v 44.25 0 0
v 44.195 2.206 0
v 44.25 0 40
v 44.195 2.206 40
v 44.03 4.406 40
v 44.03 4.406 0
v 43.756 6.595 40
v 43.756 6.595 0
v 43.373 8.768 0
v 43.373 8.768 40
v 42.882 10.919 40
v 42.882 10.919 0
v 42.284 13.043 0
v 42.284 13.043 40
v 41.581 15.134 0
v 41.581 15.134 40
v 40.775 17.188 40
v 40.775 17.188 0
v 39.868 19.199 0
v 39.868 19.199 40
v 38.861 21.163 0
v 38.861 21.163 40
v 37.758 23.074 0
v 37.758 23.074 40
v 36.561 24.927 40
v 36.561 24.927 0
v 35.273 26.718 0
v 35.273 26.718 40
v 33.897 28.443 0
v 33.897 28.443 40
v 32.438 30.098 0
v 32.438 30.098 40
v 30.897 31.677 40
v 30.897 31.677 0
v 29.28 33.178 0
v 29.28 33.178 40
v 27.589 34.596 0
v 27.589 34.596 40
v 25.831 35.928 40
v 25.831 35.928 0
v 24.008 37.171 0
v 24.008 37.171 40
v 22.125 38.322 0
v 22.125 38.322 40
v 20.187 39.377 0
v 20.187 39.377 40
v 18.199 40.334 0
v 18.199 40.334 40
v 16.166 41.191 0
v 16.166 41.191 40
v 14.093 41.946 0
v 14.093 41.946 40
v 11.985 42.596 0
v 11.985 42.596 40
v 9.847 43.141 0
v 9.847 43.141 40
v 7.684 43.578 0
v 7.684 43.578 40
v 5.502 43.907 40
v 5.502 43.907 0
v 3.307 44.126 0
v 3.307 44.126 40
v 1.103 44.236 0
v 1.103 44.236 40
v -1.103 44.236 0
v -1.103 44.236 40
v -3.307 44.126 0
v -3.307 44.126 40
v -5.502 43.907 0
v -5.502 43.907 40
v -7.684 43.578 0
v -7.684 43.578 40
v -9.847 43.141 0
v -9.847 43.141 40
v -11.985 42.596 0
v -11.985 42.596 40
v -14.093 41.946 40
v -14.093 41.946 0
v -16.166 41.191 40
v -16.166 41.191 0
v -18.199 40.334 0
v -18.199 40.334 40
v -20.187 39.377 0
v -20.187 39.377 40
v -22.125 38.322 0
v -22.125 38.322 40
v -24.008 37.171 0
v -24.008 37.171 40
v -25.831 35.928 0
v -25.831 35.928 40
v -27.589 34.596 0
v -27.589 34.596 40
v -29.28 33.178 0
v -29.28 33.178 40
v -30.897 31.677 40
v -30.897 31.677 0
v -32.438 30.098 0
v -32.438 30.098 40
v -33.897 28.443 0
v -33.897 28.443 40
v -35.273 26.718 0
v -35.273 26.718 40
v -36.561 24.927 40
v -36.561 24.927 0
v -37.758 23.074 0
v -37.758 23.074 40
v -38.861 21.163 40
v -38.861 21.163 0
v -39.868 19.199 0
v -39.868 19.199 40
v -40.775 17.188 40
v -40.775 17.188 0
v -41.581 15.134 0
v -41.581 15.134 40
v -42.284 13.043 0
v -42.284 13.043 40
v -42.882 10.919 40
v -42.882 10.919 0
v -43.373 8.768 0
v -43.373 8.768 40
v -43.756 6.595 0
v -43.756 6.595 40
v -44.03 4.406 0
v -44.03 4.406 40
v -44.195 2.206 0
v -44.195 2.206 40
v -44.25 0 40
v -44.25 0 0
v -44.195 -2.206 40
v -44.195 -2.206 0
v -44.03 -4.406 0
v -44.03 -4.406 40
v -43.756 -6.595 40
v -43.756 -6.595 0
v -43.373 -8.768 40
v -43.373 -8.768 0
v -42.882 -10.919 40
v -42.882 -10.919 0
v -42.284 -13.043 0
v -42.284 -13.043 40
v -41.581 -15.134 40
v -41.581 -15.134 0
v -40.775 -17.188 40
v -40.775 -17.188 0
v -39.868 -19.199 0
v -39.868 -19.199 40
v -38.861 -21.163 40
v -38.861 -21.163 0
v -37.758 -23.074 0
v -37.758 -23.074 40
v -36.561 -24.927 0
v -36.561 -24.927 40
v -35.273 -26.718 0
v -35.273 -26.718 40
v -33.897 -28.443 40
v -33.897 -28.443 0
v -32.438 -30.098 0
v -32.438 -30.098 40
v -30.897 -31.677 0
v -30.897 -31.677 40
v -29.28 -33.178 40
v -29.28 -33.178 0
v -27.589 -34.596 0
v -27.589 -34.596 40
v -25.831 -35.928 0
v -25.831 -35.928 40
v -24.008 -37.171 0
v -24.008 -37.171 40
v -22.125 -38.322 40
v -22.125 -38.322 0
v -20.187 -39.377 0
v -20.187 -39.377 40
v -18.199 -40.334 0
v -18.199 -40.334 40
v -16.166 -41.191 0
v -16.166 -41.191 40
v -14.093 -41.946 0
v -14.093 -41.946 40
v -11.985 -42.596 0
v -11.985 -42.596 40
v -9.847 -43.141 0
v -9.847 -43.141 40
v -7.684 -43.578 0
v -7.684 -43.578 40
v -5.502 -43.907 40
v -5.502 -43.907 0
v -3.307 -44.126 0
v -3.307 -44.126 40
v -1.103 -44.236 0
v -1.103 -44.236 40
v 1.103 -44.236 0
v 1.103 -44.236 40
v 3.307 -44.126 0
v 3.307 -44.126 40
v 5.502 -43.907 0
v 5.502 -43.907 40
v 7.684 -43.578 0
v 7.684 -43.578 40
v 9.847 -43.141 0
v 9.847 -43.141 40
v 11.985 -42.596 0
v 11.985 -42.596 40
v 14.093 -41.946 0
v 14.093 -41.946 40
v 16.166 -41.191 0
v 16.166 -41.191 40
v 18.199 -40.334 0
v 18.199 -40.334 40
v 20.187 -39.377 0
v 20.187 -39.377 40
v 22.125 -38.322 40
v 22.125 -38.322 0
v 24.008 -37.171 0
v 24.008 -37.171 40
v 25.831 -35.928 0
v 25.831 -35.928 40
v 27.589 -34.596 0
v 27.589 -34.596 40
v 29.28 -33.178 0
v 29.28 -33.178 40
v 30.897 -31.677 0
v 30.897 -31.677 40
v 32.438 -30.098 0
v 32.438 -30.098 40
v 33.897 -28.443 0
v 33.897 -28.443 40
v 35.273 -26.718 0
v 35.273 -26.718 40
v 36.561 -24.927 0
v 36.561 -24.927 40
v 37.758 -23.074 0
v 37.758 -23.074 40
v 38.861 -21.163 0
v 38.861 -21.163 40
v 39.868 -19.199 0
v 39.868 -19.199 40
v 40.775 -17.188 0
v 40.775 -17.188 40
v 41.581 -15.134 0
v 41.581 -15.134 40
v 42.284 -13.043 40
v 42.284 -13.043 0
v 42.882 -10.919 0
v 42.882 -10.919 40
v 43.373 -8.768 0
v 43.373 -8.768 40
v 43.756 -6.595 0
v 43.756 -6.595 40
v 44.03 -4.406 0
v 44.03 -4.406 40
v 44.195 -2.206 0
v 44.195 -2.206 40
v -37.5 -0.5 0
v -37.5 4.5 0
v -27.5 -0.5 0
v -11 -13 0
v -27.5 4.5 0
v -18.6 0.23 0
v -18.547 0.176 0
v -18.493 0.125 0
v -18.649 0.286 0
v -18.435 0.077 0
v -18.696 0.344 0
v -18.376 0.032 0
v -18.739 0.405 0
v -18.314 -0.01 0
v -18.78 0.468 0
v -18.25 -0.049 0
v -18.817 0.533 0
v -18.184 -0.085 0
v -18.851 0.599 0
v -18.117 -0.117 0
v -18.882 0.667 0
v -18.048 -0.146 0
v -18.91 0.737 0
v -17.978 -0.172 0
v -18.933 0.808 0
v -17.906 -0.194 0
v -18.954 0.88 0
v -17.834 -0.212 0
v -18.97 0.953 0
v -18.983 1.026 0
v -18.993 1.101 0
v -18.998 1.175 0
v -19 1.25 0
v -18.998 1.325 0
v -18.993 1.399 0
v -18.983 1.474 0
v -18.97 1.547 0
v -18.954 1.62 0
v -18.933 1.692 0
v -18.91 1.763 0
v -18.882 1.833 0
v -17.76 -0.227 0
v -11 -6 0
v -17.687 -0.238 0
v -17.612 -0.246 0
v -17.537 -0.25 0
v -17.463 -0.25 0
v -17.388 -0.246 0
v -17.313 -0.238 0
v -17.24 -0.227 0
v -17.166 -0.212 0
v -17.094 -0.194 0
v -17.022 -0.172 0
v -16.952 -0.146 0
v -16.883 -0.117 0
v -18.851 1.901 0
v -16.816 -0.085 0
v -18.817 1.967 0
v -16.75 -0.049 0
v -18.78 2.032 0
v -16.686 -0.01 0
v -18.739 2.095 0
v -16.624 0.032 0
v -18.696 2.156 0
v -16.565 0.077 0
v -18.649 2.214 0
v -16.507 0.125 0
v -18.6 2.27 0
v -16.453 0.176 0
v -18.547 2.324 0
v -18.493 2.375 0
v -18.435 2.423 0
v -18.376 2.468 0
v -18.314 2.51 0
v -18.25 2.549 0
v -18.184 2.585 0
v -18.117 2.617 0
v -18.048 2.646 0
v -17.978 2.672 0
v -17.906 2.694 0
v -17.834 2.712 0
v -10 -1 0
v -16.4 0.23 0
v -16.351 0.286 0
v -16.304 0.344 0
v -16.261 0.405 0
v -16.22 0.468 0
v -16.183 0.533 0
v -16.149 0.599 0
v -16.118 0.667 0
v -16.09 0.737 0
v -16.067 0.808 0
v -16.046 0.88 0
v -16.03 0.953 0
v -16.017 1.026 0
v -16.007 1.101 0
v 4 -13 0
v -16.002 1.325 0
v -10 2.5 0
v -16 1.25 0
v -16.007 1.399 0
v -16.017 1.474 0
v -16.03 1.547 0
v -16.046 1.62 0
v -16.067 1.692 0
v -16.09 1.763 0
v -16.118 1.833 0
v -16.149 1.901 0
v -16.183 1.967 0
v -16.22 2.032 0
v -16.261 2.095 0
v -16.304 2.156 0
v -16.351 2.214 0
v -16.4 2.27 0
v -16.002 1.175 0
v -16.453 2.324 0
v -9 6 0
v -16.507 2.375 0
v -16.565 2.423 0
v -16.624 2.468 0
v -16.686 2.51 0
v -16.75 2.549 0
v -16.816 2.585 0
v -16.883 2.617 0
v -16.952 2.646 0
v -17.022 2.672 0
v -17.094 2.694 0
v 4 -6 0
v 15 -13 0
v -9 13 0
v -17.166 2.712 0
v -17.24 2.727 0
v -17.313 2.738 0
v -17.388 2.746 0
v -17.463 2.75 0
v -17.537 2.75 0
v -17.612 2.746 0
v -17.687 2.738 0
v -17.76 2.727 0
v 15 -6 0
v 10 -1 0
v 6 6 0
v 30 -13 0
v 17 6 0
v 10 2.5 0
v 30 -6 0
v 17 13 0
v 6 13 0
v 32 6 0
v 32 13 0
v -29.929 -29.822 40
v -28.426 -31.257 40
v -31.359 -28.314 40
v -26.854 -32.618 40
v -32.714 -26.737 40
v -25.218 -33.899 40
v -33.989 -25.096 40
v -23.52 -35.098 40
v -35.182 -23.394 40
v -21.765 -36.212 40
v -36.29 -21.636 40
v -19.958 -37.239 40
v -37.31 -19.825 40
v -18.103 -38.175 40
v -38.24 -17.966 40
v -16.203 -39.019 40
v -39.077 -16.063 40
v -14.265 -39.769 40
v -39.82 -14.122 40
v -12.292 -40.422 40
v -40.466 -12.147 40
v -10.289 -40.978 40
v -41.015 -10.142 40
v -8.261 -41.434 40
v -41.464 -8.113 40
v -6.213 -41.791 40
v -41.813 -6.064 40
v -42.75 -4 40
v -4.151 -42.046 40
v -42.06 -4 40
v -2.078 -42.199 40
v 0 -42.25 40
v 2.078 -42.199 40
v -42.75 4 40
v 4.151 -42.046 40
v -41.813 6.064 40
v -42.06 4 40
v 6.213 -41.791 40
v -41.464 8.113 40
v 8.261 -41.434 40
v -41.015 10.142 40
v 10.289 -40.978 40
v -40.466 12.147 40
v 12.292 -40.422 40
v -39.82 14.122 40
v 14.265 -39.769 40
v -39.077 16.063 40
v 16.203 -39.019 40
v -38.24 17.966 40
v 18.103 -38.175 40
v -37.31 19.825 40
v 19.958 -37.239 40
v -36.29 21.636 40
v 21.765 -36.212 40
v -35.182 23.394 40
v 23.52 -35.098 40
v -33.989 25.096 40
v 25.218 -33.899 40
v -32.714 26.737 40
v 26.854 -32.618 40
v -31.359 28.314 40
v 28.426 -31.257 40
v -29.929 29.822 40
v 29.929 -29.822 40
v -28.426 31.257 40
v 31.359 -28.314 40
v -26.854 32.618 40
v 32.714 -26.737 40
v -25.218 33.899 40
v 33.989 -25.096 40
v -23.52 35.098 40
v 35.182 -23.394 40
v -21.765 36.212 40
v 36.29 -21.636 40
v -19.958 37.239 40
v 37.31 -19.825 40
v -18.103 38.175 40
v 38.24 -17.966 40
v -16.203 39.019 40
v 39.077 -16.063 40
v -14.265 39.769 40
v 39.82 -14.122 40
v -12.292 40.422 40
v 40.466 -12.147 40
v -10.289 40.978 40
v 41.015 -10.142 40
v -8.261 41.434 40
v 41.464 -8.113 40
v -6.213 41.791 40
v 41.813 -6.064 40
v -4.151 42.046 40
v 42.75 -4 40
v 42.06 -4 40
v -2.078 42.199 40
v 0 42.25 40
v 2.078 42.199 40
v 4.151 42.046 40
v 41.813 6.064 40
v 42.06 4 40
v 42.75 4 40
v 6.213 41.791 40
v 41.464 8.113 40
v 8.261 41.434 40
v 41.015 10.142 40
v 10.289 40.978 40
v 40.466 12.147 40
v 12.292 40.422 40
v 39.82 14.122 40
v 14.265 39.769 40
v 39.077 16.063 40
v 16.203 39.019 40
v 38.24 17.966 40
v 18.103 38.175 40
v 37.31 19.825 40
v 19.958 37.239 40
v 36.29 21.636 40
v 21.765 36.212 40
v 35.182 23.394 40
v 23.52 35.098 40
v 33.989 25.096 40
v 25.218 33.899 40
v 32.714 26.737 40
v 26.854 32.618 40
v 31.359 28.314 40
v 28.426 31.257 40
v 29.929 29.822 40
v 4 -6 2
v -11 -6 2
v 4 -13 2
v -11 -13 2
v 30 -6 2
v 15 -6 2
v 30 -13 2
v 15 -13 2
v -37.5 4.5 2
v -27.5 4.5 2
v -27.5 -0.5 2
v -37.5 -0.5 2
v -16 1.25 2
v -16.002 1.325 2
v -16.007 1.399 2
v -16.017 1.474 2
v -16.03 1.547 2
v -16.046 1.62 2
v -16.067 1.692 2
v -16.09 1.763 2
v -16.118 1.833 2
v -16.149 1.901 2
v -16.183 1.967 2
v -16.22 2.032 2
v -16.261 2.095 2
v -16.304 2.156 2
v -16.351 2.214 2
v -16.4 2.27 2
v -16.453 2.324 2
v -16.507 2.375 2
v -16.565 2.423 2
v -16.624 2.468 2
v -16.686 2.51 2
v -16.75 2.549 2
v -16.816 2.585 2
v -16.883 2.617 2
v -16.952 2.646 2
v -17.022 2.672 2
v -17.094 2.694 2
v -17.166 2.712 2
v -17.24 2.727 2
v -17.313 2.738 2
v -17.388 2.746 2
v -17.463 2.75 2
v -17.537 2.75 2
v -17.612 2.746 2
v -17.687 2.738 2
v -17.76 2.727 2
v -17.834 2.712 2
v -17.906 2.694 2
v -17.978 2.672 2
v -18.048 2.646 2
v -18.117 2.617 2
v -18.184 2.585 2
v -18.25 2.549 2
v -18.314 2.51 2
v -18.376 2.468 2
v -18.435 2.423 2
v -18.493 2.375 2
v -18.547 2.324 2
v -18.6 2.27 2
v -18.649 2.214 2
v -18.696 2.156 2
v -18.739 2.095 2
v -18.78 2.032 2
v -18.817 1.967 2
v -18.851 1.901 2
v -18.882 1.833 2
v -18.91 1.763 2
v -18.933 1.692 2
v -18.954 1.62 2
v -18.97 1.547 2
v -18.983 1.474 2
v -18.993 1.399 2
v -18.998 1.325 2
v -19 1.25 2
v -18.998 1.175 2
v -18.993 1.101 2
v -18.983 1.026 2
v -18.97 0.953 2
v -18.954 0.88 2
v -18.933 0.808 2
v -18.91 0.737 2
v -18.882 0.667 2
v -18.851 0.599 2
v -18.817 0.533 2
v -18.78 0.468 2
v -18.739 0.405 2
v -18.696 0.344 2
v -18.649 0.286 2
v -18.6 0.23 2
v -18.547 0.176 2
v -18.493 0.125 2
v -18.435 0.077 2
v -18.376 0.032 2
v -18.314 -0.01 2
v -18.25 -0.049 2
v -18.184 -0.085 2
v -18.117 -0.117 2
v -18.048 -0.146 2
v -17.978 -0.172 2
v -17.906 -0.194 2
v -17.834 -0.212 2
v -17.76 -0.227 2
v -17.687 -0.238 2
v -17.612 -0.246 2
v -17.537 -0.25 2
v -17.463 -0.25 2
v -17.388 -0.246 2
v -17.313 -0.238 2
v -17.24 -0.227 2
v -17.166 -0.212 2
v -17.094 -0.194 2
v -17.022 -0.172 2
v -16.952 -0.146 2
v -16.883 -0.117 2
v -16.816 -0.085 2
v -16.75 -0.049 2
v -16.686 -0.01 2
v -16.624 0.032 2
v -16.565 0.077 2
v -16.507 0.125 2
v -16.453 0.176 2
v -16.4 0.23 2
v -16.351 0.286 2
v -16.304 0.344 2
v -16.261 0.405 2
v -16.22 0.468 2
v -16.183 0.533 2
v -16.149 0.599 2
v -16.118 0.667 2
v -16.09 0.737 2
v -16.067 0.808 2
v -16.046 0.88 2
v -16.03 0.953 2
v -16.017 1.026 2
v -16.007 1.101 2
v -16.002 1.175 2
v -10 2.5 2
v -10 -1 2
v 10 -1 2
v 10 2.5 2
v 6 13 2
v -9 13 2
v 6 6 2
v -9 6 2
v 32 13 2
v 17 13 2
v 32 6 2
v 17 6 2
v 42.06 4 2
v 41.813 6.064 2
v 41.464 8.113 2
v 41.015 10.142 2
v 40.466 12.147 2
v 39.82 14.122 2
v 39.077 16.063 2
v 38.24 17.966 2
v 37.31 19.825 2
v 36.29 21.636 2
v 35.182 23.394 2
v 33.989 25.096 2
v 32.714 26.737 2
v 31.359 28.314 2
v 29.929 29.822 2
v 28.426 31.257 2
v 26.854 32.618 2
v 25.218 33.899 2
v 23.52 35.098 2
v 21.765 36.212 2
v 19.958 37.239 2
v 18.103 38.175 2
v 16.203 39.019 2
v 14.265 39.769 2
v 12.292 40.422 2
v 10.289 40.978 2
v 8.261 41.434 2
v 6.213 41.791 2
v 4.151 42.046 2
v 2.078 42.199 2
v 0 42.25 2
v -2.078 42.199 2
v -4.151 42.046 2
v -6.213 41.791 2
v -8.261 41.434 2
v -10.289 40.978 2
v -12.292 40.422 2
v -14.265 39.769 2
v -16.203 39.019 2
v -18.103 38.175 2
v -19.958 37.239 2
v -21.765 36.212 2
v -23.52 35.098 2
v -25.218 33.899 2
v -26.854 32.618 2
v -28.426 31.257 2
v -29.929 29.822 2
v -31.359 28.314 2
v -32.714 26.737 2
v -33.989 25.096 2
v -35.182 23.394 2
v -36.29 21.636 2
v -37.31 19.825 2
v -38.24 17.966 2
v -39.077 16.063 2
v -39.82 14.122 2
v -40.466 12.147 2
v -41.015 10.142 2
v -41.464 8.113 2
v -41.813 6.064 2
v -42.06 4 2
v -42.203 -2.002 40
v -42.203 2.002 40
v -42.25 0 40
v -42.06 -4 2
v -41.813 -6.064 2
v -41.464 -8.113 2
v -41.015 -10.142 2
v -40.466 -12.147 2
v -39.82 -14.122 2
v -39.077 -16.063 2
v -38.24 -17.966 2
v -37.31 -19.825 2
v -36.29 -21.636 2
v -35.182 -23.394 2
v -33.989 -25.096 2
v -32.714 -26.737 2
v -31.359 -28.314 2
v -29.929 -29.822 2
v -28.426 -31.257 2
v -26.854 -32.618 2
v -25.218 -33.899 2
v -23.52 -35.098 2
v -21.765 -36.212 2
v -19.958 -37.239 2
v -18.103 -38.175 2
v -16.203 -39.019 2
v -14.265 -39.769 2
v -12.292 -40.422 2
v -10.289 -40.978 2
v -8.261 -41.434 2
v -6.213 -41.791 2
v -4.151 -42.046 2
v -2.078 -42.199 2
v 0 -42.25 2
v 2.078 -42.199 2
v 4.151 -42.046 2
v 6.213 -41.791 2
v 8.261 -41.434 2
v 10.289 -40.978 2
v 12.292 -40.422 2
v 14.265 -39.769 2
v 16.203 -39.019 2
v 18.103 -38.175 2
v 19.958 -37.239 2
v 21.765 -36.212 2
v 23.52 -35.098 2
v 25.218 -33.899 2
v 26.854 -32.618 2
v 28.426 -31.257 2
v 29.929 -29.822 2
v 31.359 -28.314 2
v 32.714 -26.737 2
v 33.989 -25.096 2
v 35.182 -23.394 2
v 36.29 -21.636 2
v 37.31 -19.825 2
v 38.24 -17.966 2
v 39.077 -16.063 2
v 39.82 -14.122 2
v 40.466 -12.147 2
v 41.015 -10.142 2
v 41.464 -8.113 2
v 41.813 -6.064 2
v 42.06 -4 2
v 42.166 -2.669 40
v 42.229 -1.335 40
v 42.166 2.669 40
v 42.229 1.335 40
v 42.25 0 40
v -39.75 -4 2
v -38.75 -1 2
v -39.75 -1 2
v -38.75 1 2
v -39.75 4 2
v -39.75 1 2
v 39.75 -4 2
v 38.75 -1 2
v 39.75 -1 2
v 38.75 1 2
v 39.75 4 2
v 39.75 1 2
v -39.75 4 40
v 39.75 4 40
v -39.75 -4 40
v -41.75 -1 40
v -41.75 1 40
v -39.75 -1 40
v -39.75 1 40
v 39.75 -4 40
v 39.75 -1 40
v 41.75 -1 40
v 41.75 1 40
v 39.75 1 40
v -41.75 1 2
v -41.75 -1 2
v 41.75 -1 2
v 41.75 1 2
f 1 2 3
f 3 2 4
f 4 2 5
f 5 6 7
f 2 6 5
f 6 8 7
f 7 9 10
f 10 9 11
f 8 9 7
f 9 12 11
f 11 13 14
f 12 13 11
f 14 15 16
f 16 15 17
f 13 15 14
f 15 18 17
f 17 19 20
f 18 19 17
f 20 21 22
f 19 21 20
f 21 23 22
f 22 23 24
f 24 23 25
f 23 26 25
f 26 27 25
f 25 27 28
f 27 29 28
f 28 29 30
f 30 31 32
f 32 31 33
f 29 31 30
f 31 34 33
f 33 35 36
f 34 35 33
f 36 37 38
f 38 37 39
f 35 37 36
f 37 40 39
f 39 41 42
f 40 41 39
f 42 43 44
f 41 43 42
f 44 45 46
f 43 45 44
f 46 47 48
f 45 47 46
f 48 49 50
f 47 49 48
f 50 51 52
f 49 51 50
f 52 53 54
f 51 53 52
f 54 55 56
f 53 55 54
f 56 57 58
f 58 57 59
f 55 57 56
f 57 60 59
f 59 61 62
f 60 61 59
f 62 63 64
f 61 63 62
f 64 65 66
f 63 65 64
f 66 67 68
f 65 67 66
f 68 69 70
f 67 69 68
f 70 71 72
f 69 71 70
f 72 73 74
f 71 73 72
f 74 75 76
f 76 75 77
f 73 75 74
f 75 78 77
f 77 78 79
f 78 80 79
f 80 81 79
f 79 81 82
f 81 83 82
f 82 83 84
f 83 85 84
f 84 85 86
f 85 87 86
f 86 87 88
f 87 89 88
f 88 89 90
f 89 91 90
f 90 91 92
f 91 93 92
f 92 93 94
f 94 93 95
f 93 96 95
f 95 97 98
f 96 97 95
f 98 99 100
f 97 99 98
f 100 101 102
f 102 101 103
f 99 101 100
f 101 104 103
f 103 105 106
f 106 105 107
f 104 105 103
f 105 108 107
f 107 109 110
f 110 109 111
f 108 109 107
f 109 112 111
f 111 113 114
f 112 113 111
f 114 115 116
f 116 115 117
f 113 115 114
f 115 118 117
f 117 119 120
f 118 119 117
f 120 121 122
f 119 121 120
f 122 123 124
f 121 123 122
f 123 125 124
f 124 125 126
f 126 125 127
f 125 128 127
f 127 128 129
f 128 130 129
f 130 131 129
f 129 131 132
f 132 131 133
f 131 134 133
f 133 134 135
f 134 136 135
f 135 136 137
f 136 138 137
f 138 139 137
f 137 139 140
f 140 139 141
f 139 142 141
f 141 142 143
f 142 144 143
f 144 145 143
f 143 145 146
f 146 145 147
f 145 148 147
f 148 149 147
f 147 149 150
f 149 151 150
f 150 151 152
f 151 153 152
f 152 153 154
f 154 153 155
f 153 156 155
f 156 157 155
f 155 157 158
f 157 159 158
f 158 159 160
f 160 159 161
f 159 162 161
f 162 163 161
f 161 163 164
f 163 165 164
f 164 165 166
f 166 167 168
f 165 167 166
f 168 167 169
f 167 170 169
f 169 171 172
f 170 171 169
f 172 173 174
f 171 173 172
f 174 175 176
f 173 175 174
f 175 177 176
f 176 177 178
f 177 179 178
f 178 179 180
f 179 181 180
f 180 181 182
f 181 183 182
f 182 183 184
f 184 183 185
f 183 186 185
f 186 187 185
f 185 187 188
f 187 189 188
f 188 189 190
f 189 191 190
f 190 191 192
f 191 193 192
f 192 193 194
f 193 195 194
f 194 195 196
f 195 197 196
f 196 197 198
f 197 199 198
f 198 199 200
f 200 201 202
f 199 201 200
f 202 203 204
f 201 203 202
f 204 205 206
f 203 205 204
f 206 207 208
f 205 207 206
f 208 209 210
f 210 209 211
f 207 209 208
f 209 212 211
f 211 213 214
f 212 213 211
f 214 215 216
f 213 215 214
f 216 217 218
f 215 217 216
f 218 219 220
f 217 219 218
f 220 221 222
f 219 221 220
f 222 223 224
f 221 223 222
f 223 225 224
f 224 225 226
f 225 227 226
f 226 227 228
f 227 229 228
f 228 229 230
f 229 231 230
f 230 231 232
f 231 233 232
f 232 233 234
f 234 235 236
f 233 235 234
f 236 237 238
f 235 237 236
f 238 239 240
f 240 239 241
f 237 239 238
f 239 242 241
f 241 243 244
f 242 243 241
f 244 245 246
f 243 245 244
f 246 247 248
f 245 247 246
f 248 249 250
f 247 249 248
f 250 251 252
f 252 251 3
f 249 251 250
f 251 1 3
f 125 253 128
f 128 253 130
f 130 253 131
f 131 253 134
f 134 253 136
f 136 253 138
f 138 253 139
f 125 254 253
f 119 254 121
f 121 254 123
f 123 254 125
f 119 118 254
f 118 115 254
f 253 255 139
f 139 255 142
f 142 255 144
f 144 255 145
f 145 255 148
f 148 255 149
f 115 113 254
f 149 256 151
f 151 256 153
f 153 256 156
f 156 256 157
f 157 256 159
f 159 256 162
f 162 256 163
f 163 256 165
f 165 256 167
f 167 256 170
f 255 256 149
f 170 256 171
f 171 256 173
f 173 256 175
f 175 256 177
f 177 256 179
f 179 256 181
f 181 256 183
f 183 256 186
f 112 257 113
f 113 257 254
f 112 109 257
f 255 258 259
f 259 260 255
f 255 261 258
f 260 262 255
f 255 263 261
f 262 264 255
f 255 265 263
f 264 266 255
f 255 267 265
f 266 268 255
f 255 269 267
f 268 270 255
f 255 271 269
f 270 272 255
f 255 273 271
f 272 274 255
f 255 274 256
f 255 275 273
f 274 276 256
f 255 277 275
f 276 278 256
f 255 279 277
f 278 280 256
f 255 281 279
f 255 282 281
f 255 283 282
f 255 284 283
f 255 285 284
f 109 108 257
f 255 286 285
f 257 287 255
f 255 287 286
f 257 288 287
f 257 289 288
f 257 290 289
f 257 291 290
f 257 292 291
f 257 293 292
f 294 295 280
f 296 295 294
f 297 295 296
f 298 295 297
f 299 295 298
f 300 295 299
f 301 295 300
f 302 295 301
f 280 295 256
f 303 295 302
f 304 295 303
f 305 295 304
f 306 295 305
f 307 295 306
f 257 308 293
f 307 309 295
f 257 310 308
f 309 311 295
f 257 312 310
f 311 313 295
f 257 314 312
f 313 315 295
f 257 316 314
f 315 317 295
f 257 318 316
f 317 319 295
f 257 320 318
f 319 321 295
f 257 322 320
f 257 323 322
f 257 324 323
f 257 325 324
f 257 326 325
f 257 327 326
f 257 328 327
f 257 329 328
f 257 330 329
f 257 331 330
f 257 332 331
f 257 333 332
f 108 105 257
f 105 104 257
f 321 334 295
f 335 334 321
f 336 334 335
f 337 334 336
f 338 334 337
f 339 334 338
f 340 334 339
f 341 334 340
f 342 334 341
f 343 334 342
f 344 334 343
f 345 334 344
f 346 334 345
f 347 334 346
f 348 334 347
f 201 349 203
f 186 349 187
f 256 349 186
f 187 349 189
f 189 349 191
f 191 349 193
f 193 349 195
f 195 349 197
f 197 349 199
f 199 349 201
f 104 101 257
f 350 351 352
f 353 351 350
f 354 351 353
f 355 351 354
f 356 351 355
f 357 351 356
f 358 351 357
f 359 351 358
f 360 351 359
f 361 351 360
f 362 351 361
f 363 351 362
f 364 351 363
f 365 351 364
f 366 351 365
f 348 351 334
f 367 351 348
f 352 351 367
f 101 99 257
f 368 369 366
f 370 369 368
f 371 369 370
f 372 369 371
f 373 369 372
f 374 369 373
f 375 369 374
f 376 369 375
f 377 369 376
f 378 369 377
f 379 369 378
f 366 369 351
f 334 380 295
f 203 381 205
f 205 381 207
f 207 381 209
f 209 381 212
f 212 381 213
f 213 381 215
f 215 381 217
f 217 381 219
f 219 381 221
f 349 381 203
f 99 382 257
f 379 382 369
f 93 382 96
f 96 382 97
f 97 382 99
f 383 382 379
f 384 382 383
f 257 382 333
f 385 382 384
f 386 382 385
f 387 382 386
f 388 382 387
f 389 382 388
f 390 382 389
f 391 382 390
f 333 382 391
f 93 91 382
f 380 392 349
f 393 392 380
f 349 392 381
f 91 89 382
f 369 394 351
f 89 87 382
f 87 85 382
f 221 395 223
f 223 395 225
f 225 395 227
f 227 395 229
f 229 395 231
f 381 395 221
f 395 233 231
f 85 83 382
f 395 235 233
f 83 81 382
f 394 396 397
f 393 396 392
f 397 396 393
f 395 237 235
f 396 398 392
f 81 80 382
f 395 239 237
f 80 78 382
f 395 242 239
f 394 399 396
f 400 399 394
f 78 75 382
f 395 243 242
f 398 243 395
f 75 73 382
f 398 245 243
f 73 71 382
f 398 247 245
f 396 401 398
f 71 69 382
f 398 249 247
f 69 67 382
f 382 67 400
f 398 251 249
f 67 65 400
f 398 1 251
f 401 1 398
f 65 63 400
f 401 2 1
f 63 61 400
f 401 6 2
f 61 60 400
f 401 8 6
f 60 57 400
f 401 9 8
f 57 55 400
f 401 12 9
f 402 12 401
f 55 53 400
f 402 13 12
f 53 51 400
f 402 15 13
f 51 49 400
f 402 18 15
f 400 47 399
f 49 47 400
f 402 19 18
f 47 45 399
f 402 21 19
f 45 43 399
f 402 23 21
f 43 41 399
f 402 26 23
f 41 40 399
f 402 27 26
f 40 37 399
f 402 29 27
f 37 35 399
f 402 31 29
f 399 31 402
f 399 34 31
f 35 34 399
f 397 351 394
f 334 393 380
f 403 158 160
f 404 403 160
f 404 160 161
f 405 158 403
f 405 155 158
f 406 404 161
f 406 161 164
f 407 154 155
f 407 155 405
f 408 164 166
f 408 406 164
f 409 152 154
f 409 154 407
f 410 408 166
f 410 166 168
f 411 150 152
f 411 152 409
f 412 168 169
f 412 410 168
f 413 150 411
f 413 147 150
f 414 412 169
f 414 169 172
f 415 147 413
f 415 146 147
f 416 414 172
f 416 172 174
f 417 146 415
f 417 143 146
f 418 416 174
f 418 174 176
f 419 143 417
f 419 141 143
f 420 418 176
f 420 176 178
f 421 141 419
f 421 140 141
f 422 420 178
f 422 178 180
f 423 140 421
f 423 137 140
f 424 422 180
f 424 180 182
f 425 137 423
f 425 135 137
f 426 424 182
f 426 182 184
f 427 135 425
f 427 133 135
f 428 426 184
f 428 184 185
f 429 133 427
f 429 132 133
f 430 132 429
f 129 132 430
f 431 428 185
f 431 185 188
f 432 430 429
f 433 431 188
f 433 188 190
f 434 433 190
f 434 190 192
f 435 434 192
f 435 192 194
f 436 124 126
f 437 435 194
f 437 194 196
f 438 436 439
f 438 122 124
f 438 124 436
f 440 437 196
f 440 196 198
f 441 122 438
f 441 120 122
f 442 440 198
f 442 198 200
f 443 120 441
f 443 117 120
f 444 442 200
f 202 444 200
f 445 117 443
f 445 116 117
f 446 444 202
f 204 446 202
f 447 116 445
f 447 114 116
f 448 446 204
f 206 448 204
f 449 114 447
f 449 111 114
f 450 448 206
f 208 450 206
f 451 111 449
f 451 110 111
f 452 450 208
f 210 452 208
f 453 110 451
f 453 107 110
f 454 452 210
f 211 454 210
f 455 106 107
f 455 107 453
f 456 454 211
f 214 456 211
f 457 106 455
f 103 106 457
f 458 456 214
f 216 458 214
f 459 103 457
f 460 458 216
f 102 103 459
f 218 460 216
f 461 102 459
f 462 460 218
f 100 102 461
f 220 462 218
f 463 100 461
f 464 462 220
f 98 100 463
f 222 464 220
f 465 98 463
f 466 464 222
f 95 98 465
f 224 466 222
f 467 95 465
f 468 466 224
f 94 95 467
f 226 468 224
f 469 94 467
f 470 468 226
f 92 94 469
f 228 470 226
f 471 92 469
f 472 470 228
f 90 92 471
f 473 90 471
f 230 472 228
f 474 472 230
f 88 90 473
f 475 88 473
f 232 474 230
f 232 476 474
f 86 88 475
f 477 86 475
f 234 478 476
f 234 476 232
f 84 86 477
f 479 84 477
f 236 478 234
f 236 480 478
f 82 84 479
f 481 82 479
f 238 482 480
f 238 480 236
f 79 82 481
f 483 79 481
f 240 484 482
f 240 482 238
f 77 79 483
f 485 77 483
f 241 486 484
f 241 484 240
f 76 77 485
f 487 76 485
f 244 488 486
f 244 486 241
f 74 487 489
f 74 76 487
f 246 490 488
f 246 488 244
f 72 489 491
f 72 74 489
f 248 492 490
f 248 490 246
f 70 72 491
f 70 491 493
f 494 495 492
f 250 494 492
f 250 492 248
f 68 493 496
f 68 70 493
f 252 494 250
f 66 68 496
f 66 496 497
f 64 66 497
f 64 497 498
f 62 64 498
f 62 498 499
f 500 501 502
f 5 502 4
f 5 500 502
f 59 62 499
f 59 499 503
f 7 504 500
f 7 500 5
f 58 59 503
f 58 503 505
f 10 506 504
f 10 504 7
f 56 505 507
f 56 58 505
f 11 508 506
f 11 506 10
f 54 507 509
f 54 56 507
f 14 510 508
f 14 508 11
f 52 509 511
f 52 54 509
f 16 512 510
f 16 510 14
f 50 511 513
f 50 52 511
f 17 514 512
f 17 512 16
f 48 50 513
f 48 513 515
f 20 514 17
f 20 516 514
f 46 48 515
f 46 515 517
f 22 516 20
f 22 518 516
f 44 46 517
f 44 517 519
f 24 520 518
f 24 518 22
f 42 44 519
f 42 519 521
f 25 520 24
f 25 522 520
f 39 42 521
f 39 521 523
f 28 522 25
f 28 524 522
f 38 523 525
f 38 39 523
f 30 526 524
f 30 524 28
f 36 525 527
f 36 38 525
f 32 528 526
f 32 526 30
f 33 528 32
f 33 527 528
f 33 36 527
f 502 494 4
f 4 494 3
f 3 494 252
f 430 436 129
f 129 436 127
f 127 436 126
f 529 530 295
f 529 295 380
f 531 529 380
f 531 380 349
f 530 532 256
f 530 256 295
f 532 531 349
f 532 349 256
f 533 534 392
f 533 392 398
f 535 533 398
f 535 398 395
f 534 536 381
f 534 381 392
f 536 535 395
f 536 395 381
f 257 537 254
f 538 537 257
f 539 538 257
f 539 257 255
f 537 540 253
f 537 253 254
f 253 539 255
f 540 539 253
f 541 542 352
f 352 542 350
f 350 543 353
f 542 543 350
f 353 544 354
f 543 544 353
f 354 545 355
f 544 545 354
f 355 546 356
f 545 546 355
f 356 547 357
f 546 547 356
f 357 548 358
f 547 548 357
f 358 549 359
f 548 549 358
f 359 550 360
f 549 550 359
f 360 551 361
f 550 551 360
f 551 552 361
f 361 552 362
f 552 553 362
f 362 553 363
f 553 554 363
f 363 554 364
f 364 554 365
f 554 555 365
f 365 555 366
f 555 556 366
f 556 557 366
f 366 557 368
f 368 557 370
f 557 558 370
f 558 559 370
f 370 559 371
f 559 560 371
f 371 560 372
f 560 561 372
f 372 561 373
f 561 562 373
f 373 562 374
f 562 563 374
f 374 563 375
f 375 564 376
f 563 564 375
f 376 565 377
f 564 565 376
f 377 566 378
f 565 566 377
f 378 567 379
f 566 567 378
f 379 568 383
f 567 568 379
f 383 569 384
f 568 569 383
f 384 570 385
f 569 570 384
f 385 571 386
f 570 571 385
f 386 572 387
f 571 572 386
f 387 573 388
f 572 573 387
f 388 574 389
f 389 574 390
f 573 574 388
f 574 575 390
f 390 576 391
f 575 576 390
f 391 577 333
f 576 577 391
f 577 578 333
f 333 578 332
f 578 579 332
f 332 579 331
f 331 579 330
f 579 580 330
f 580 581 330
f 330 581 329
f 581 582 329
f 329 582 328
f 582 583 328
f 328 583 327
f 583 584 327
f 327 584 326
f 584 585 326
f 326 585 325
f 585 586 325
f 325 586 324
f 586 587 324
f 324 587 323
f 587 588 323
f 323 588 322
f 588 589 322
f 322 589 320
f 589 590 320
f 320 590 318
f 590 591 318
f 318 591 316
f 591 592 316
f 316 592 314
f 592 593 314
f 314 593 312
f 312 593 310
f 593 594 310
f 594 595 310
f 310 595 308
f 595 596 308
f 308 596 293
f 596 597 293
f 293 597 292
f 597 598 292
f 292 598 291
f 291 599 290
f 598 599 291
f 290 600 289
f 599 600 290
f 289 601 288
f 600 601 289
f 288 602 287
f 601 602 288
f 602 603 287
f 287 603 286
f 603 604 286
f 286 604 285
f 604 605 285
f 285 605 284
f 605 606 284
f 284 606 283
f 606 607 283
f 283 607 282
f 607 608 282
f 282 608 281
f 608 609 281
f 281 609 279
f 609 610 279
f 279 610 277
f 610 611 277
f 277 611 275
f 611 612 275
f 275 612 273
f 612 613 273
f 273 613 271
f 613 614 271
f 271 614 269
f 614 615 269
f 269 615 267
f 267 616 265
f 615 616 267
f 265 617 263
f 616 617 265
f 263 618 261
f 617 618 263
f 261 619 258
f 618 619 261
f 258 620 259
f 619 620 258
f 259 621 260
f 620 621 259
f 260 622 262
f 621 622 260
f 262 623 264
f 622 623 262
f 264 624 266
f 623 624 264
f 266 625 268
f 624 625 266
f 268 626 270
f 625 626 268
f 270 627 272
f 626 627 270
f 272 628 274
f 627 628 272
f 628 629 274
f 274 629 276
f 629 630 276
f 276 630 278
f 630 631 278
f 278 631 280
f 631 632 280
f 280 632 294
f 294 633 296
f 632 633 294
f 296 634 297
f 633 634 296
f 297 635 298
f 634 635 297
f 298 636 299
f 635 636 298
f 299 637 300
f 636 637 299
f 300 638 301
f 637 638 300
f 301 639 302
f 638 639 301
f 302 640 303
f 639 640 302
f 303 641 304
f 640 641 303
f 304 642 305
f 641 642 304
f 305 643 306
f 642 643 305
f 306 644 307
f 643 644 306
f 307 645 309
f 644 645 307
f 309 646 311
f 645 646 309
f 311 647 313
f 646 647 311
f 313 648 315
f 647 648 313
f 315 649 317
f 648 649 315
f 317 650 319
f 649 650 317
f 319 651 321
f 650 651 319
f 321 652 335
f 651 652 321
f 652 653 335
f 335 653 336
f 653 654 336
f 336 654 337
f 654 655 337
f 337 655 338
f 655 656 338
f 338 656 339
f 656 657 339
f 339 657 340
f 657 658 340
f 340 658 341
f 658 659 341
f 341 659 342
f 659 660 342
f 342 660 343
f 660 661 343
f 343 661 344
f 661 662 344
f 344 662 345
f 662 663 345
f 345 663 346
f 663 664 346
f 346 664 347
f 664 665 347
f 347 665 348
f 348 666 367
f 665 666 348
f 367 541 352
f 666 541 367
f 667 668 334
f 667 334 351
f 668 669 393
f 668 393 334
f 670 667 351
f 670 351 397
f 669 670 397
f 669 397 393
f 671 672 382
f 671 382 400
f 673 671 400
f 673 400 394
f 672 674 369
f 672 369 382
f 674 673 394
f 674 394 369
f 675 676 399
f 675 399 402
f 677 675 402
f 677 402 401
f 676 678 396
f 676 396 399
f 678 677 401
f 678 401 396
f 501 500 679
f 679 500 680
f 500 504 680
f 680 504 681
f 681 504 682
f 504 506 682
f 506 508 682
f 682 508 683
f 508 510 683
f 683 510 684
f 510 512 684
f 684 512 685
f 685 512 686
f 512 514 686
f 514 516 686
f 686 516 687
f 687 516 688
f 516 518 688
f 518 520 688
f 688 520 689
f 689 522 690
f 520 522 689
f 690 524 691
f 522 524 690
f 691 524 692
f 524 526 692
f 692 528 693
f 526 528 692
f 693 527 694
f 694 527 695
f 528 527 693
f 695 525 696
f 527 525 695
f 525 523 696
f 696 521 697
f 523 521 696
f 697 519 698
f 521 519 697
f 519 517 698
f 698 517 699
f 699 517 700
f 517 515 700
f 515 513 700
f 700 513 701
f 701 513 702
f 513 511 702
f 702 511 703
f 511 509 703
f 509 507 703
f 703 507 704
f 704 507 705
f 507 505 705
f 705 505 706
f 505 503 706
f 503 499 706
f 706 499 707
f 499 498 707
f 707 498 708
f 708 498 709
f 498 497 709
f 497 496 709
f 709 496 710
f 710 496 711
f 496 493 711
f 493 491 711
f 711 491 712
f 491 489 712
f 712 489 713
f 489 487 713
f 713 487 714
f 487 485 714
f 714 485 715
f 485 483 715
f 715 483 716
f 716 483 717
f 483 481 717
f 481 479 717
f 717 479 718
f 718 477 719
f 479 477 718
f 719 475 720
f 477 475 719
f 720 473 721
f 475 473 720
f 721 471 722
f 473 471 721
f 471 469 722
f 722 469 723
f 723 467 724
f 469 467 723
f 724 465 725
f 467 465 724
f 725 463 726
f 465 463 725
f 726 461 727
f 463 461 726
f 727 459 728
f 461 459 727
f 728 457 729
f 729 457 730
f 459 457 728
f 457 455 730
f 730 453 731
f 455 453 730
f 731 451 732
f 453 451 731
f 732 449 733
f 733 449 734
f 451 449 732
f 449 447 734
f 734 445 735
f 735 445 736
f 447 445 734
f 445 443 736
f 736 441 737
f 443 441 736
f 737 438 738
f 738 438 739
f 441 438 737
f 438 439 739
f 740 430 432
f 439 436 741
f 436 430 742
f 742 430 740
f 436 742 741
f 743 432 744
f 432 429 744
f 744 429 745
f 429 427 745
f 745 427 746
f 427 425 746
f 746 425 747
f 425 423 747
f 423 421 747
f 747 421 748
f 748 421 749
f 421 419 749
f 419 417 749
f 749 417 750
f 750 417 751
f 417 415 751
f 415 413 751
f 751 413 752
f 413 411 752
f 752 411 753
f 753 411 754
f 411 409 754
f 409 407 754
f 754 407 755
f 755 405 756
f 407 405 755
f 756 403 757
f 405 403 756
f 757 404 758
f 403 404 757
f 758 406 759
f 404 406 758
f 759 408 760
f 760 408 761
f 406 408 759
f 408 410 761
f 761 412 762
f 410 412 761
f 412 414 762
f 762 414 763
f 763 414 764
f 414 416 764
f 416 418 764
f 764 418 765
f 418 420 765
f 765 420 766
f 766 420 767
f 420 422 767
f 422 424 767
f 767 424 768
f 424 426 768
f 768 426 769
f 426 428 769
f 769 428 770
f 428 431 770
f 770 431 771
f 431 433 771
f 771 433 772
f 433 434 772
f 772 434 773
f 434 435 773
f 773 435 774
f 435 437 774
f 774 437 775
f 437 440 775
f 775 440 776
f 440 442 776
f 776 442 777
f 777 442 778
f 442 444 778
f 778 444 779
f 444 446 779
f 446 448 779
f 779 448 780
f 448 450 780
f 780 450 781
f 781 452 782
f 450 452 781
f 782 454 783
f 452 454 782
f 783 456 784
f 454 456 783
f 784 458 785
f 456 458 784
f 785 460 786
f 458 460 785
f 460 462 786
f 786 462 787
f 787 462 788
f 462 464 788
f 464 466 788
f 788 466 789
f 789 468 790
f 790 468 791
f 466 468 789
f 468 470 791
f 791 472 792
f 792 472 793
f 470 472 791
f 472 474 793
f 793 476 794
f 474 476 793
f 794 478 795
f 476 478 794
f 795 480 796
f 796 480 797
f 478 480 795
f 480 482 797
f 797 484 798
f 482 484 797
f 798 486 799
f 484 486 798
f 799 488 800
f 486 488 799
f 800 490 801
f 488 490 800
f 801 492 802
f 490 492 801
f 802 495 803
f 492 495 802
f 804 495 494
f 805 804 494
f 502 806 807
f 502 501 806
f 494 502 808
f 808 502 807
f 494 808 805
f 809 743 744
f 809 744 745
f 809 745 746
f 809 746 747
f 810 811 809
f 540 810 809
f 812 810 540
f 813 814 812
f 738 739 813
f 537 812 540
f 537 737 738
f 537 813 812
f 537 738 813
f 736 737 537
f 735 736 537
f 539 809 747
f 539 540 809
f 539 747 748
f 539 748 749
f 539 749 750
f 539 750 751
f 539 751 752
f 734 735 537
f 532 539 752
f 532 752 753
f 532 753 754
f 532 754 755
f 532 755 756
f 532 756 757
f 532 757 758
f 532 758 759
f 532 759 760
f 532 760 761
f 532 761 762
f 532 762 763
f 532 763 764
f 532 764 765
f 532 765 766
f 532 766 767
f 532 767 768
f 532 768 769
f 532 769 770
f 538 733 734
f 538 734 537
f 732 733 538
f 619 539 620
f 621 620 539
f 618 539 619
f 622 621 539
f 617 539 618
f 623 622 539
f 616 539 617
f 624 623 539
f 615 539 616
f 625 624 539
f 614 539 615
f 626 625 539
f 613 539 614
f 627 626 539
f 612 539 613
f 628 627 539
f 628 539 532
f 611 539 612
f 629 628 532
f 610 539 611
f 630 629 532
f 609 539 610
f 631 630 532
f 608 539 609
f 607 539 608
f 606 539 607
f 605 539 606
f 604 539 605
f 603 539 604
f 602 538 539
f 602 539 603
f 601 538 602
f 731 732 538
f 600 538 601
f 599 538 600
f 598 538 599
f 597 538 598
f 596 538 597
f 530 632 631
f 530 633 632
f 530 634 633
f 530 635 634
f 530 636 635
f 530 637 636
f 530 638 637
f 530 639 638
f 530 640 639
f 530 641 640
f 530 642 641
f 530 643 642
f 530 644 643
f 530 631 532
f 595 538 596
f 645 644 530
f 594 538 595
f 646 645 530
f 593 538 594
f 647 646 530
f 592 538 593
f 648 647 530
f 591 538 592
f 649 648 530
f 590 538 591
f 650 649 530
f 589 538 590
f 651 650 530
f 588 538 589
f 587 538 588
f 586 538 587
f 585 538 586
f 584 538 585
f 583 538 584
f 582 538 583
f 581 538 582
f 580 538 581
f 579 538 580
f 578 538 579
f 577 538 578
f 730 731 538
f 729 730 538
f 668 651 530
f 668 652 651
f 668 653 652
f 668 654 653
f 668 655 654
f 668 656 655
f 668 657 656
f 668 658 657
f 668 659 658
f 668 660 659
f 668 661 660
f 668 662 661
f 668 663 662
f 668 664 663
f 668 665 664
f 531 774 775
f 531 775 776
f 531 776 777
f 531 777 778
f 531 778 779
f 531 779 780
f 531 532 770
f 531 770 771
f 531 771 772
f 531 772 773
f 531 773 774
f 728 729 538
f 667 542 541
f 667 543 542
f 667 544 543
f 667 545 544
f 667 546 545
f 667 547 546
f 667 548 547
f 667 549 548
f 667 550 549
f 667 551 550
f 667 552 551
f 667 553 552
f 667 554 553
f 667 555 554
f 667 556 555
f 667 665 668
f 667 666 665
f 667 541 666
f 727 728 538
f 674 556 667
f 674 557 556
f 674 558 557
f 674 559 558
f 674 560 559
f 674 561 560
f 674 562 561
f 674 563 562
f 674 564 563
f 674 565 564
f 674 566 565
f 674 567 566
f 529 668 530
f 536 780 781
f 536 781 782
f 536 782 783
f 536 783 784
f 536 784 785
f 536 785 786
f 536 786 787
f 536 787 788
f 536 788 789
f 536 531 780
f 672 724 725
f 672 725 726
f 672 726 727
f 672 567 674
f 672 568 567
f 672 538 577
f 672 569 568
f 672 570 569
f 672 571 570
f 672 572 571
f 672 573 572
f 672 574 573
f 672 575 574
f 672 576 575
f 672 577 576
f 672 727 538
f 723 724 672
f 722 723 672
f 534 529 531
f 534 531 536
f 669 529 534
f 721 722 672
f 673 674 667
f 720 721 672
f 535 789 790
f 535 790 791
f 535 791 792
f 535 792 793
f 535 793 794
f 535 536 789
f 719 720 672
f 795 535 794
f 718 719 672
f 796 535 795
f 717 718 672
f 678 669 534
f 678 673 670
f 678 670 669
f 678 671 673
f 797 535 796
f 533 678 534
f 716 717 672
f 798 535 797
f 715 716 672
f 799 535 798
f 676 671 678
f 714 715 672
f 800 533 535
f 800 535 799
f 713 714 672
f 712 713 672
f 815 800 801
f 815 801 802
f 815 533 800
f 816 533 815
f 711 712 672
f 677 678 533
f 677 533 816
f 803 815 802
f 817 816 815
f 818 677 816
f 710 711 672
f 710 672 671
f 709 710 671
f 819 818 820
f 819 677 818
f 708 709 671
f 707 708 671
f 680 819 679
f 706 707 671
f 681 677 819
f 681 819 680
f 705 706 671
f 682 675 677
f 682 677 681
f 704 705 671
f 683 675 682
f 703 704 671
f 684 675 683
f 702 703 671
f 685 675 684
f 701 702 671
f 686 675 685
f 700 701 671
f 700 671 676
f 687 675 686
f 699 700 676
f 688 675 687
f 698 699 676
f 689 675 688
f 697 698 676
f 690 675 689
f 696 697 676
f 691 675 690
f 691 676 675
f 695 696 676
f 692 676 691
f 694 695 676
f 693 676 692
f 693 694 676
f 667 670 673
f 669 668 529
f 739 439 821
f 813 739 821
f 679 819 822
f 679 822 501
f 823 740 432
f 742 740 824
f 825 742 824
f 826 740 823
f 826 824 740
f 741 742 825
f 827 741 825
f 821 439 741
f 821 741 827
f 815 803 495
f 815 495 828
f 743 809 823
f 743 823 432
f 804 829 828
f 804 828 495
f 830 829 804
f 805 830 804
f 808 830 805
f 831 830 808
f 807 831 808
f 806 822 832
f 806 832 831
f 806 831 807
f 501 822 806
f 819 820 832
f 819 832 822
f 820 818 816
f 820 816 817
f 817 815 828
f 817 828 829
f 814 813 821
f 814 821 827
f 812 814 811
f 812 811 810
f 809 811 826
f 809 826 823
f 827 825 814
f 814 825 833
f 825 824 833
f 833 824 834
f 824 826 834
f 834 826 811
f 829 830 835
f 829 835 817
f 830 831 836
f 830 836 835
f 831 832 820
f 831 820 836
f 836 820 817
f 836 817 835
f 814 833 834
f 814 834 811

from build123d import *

# Parameters (mm, degrees)
SKETCH_R        = 44.25
PAD_DEPTH       = 40
SKETCH001_R     = 42.25
POCKET_DEPTH    = 38
SKETCH002_W     = 3
SKETCH002_H     = 8
PAD001_DEPTH    = 38
SKETCH003_W     = 3
SKETCH003_H     = 2
POCKET001_DEPTH = 38
SKETCH004_R     = 1.5
SKETCH004_W     = 20
SKETCH004_H     = 3.5
SKETCH004_W_2   = 10
SKETCH004_H_2   = 5
SKETCH004_W_3   = 15
SKETCH004_H_3   = 7
POCKET002_DEPTH = 2


with BuildPart() as part:
    # Sketch → Pad (new body)
    with BuildSketch(Plane.XY):
        Circle(SKETCH_R)
    extrude(amount=PAD_DEPTH)

    # Sketch001 (on Face3 of Pad) → Pocket (cut)
    with BuildSketch(Plane.XY.offset(40)):
        Circle(SKETCH001_R)
    extrude(amount=-POCKET_DEPTH, mode=Mode.SUBTRACT)

    # Sketch002 (on Face5 of Pocket) → Pad001 (join)
    with BuildSketch(Plane.XY.offset(2)):
        with Locations((-41.25, 0)):
            Rectangle(SKETCH002_W, SKETCH002_H)
        with Locations((41.25, 0)):
            Rectangle(SKETCH002_W, SKETCH002_H)
    extrude(amount=PAD001_DEPTH)

    # Sketch003 (on Face14 of Pad001) → Pocket001 (cut)
    with BuildSketch(Plane.XY.offset(40)):
        with Locations((-40.25, 0)):
            Rectangle(SKETCH003_W, SKETCH003_H)
        with Locations((40.25, 0)):
            Rectangle(SKETCH003_W, SKETCH003_H)
    extrude(amount=-POCKET001_DEPTH, mode=Mode.SUBTRACT)

    # Sketch004 (on Face9 of Pocket001) → Pocket002 (cut)
    with BuildSketch(Plane.XY.offset(2)):
        with Locations((-17.5, 1.25)):
            Circle(SKETCH004_R)
        with Locations((0, 0.75)):
            Rectangle(SKETCH004_W, SKETCH004_H)
        with Locations((-32.5, 2)):
            Rectangle(SKETCH004_W_2, SKETCH004_H_2)
        with Locations((-3.5, -9.5)):
            Rectangle(SKETCH004_W_3, SKETCH004_H_3)
        with Locations((22.5, -9.5)):
            Rectangle(SKETCH004_W_3, SKETCH004_H_3)
        with Locations((-1.5, 9.5)):
            Rectangle(SKETCH004_W_3, SKETCH004_H_3)
        with Locations((24.5, 9.5)):
            Rectangle(SKETCH004_W_3, SKETCH004_H_3)
    extrude(amount=-POCKET002_DEPTH, mode=Mode.SUBTRACT)


solid = part.part
